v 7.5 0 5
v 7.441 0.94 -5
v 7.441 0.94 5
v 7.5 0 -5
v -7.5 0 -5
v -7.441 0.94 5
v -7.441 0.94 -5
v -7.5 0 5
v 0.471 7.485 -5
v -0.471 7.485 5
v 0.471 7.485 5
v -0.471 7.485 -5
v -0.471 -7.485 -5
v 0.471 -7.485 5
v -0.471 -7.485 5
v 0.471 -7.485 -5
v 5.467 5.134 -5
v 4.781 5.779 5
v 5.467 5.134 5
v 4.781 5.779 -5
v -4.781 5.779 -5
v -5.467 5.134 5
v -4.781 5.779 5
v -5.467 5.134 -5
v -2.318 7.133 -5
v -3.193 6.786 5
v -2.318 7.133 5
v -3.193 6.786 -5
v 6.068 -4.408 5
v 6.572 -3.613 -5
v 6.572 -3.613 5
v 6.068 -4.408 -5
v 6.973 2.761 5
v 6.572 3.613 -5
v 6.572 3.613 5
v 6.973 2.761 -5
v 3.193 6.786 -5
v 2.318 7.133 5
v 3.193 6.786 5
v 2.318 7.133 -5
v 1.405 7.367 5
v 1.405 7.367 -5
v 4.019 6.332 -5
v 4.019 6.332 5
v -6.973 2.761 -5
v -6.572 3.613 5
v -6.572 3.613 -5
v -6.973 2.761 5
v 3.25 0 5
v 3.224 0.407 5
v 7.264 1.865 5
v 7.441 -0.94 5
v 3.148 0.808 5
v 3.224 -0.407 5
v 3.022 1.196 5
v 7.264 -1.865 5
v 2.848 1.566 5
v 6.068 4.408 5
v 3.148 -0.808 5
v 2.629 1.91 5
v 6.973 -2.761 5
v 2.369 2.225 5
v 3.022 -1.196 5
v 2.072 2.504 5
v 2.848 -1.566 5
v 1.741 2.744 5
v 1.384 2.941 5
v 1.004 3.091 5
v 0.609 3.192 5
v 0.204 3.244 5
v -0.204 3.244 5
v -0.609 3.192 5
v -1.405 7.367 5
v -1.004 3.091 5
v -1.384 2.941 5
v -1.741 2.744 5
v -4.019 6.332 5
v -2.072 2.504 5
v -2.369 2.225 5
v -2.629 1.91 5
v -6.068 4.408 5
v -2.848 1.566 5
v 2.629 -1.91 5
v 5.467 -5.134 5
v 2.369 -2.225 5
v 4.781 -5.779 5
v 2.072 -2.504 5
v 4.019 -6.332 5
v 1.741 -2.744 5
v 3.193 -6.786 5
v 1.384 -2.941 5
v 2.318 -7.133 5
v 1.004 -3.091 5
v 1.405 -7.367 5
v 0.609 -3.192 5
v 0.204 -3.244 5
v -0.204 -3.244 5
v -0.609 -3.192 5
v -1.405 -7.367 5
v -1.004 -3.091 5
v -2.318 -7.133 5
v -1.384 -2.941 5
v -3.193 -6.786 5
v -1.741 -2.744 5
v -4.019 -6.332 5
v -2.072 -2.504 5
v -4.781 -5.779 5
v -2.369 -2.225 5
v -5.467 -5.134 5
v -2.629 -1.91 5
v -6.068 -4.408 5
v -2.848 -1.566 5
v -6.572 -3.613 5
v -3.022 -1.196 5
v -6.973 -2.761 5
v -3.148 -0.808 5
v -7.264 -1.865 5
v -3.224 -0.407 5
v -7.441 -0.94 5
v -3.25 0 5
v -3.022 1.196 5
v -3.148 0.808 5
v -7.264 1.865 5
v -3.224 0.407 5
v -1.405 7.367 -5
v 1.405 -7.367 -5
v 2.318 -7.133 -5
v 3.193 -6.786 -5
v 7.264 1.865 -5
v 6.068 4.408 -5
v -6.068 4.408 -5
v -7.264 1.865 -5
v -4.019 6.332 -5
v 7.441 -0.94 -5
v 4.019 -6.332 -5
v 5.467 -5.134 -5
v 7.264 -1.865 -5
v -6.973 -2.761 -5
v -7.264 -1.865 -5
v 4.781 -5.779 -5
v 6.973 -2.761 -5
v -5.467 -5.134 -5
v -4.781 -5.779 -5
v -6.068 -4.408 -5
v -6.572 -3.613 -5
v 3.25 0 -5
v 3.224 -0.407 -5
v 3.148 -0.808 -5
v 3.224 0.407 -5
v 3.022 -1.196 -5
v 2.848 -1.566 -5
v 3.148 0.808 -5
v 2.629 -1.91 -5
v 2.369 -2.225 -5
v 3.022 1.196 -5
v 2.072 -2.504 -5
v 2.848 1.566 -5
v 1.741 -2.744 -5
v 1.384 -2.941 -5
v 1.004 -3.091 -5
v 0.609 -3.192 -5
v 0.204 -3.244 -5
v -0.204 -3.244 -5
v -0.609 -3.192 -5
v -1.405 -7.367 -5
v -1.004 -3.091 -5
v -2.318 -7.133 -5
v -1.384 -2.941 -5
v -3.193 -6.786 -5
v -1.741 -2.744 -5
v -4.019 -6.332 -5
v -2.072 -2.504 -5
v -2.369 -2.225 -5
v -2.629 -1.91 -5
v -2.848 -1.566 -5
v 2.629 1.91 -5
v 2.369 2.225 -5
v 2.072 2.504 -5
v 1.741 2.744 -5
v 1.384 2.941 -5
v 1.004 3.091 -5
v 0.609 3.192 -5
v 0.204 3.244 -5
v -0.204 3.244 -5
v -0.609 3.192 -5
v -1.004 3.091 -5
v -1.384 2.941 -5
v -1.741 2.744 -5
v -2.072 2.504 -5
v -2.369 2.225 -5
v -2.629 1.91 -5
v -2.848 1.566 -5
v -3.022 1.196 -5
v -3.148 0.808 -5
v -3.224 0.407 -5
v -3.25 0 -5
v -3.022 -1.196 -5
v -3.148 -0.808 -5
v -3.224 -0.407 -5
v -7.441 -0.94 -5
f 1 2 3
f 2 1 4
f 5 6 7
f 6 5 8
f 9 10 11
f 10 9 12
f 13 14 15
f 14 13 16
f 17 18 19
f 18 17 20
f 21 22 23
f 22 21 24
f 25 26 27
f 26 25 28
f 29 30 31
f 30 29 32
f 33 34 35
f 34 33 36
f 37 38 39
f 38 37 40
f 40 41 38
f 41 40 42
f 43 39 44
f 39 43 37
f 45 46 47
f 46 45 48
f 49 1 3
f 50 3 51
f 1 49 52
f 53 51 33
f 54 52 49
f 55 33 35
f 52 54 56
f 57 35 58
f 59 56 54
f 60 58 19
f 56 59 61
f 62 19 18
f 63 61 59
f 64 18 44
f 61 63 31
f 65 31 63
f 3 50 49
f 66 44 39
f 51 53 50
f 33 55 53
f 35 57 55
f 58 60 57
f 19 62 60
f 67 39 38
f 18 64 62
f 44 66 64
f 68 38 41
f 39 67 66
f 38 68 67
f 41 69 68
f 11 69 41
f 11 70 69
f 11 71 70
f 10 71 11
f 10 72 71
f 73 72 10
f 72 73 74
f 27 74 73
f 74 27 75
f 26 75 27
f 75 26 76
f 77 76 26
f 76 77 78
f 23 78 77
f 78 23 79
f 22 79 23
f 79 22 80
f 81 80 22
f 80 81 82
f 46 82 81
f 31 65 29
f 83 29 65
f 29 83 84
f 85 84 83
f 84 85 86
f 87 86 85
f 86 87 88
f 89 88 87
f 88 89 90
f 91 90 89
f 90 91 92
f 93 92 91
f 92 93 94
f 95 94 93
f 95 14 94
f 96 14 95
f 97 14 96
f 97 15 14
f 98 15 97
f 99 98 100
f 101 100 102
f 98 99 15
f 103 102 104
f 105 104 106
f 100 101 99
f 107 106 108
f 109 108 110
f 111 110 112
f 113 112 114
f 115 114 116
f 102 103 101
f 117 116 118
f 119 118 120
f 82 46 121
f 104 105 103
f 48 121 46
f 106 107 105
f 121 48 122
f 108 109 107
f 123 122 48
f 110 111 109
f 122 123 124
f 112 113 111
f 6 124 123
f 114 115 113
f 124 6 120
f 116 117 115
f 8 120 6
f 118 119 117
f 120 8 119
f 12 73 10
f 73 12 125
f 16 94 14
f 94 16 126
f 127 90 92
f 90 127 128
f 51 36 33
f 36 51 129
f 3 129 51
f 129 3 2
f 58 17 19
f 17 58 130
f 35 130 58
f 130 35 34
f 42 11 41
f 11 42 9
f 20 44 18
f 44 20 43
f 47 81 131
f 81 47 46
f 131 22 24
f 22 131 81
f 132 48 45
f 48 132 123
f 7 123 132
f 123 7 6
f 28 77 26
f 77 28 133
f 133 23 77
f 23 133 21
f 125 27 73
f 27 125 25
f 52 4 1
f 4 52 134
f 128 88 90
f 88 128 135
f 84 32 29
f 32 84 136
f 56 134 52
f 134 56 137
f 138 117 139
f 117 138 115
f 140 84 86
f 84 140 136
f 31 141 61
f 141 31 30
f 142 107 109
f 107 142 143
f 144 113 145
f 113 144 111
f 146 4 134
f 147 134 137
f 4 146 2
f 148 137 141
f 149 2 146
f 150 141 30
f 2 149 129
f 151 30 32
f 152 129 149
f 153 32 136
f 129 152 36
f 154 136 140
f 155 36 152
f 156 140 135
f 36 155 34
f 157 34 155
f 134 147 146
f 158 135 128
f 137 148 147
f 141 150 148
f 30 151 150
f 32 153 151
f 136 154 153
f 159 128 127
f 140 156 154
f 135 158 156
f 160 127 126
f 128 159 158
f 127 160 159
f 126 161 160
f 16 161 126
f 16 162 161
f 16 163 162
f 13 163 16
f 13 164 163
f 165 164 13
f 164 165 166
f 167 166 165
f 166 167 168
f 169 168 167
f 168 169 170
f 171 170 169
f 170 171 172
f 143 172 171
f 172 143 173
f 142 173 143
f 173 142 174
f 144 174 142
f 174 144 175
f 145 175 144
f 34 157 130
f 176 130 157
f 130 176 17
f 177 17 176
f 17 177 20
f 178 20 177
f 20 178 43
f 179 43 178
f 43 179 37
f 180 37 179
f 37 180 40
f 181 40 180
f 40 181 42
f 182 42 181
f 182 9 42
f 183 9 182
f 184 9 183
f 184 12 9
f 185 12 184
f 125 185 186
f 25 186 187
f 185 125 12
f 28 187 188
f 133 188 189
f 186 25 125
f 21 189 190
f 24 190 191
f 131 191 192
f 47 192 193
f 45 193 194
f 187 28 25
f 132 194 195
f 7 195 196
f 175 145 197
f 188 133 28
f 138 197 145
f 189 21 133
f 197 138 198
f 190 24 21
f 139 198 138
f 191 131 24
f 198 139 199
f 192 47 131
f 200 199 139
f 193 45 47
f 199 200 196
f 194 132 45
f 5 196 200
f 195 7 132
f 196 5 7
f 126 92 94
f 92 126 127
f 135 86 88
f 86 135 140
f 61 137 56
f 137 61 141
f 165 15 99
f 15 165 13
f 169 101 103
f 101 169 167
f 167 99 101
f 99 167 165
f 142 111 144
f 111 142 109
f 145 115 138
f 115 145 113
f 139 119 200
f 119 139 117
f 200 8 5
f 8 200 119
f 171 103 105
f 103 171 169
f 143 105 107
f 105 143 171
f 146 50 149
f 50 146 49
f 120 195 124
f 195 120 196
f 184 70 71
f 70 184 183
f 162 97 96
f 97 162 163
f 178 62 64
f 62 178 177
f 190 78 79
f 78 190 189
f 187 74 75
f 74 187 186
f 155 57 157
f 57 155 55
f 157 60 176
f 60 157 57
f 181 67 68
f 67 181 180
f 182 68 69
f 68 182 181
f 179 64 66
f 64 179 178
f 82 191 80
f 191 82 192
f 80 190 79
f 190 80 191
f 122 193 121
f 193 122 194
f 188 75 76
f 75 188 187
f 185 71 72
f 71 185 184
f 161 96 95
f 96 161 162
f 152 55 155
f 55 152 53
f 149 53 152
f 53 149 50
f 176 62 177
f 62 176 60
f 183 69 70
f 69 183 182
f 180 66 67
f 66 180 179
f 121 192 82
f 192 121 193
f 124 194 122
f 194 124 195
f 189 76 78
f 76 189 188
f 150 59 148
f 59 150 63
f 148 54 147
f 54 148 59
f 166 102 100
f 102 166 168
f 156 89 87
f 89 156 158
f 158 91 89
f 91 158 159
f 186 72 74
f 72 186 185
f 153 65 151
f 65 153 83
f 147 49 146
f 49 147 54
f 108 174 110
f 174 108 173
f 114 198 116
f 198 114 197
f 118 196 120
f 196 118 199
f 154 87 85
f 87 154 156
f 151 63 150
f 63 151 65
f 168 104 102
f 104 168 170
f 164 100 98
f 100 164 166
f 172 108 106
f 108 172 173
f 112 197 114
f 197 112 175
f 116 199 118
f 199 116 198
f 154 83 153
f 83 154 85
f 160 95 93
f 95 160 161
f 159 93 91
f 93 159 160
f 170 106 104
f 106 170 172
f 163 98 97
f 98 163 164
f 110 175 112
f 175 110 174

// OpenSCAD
$fn = 50;


difference() {
	union() {
		translate(v = [0, 0, -5.0000000000]) {
			cylinder(h = 10, r = 7.5000000000);
		}
	}
	union() {
		translate(v = [0, 0, -100.0000000000]) {
			cylinder(h = 200, r = 3.2500000000);
		}
	}
}
